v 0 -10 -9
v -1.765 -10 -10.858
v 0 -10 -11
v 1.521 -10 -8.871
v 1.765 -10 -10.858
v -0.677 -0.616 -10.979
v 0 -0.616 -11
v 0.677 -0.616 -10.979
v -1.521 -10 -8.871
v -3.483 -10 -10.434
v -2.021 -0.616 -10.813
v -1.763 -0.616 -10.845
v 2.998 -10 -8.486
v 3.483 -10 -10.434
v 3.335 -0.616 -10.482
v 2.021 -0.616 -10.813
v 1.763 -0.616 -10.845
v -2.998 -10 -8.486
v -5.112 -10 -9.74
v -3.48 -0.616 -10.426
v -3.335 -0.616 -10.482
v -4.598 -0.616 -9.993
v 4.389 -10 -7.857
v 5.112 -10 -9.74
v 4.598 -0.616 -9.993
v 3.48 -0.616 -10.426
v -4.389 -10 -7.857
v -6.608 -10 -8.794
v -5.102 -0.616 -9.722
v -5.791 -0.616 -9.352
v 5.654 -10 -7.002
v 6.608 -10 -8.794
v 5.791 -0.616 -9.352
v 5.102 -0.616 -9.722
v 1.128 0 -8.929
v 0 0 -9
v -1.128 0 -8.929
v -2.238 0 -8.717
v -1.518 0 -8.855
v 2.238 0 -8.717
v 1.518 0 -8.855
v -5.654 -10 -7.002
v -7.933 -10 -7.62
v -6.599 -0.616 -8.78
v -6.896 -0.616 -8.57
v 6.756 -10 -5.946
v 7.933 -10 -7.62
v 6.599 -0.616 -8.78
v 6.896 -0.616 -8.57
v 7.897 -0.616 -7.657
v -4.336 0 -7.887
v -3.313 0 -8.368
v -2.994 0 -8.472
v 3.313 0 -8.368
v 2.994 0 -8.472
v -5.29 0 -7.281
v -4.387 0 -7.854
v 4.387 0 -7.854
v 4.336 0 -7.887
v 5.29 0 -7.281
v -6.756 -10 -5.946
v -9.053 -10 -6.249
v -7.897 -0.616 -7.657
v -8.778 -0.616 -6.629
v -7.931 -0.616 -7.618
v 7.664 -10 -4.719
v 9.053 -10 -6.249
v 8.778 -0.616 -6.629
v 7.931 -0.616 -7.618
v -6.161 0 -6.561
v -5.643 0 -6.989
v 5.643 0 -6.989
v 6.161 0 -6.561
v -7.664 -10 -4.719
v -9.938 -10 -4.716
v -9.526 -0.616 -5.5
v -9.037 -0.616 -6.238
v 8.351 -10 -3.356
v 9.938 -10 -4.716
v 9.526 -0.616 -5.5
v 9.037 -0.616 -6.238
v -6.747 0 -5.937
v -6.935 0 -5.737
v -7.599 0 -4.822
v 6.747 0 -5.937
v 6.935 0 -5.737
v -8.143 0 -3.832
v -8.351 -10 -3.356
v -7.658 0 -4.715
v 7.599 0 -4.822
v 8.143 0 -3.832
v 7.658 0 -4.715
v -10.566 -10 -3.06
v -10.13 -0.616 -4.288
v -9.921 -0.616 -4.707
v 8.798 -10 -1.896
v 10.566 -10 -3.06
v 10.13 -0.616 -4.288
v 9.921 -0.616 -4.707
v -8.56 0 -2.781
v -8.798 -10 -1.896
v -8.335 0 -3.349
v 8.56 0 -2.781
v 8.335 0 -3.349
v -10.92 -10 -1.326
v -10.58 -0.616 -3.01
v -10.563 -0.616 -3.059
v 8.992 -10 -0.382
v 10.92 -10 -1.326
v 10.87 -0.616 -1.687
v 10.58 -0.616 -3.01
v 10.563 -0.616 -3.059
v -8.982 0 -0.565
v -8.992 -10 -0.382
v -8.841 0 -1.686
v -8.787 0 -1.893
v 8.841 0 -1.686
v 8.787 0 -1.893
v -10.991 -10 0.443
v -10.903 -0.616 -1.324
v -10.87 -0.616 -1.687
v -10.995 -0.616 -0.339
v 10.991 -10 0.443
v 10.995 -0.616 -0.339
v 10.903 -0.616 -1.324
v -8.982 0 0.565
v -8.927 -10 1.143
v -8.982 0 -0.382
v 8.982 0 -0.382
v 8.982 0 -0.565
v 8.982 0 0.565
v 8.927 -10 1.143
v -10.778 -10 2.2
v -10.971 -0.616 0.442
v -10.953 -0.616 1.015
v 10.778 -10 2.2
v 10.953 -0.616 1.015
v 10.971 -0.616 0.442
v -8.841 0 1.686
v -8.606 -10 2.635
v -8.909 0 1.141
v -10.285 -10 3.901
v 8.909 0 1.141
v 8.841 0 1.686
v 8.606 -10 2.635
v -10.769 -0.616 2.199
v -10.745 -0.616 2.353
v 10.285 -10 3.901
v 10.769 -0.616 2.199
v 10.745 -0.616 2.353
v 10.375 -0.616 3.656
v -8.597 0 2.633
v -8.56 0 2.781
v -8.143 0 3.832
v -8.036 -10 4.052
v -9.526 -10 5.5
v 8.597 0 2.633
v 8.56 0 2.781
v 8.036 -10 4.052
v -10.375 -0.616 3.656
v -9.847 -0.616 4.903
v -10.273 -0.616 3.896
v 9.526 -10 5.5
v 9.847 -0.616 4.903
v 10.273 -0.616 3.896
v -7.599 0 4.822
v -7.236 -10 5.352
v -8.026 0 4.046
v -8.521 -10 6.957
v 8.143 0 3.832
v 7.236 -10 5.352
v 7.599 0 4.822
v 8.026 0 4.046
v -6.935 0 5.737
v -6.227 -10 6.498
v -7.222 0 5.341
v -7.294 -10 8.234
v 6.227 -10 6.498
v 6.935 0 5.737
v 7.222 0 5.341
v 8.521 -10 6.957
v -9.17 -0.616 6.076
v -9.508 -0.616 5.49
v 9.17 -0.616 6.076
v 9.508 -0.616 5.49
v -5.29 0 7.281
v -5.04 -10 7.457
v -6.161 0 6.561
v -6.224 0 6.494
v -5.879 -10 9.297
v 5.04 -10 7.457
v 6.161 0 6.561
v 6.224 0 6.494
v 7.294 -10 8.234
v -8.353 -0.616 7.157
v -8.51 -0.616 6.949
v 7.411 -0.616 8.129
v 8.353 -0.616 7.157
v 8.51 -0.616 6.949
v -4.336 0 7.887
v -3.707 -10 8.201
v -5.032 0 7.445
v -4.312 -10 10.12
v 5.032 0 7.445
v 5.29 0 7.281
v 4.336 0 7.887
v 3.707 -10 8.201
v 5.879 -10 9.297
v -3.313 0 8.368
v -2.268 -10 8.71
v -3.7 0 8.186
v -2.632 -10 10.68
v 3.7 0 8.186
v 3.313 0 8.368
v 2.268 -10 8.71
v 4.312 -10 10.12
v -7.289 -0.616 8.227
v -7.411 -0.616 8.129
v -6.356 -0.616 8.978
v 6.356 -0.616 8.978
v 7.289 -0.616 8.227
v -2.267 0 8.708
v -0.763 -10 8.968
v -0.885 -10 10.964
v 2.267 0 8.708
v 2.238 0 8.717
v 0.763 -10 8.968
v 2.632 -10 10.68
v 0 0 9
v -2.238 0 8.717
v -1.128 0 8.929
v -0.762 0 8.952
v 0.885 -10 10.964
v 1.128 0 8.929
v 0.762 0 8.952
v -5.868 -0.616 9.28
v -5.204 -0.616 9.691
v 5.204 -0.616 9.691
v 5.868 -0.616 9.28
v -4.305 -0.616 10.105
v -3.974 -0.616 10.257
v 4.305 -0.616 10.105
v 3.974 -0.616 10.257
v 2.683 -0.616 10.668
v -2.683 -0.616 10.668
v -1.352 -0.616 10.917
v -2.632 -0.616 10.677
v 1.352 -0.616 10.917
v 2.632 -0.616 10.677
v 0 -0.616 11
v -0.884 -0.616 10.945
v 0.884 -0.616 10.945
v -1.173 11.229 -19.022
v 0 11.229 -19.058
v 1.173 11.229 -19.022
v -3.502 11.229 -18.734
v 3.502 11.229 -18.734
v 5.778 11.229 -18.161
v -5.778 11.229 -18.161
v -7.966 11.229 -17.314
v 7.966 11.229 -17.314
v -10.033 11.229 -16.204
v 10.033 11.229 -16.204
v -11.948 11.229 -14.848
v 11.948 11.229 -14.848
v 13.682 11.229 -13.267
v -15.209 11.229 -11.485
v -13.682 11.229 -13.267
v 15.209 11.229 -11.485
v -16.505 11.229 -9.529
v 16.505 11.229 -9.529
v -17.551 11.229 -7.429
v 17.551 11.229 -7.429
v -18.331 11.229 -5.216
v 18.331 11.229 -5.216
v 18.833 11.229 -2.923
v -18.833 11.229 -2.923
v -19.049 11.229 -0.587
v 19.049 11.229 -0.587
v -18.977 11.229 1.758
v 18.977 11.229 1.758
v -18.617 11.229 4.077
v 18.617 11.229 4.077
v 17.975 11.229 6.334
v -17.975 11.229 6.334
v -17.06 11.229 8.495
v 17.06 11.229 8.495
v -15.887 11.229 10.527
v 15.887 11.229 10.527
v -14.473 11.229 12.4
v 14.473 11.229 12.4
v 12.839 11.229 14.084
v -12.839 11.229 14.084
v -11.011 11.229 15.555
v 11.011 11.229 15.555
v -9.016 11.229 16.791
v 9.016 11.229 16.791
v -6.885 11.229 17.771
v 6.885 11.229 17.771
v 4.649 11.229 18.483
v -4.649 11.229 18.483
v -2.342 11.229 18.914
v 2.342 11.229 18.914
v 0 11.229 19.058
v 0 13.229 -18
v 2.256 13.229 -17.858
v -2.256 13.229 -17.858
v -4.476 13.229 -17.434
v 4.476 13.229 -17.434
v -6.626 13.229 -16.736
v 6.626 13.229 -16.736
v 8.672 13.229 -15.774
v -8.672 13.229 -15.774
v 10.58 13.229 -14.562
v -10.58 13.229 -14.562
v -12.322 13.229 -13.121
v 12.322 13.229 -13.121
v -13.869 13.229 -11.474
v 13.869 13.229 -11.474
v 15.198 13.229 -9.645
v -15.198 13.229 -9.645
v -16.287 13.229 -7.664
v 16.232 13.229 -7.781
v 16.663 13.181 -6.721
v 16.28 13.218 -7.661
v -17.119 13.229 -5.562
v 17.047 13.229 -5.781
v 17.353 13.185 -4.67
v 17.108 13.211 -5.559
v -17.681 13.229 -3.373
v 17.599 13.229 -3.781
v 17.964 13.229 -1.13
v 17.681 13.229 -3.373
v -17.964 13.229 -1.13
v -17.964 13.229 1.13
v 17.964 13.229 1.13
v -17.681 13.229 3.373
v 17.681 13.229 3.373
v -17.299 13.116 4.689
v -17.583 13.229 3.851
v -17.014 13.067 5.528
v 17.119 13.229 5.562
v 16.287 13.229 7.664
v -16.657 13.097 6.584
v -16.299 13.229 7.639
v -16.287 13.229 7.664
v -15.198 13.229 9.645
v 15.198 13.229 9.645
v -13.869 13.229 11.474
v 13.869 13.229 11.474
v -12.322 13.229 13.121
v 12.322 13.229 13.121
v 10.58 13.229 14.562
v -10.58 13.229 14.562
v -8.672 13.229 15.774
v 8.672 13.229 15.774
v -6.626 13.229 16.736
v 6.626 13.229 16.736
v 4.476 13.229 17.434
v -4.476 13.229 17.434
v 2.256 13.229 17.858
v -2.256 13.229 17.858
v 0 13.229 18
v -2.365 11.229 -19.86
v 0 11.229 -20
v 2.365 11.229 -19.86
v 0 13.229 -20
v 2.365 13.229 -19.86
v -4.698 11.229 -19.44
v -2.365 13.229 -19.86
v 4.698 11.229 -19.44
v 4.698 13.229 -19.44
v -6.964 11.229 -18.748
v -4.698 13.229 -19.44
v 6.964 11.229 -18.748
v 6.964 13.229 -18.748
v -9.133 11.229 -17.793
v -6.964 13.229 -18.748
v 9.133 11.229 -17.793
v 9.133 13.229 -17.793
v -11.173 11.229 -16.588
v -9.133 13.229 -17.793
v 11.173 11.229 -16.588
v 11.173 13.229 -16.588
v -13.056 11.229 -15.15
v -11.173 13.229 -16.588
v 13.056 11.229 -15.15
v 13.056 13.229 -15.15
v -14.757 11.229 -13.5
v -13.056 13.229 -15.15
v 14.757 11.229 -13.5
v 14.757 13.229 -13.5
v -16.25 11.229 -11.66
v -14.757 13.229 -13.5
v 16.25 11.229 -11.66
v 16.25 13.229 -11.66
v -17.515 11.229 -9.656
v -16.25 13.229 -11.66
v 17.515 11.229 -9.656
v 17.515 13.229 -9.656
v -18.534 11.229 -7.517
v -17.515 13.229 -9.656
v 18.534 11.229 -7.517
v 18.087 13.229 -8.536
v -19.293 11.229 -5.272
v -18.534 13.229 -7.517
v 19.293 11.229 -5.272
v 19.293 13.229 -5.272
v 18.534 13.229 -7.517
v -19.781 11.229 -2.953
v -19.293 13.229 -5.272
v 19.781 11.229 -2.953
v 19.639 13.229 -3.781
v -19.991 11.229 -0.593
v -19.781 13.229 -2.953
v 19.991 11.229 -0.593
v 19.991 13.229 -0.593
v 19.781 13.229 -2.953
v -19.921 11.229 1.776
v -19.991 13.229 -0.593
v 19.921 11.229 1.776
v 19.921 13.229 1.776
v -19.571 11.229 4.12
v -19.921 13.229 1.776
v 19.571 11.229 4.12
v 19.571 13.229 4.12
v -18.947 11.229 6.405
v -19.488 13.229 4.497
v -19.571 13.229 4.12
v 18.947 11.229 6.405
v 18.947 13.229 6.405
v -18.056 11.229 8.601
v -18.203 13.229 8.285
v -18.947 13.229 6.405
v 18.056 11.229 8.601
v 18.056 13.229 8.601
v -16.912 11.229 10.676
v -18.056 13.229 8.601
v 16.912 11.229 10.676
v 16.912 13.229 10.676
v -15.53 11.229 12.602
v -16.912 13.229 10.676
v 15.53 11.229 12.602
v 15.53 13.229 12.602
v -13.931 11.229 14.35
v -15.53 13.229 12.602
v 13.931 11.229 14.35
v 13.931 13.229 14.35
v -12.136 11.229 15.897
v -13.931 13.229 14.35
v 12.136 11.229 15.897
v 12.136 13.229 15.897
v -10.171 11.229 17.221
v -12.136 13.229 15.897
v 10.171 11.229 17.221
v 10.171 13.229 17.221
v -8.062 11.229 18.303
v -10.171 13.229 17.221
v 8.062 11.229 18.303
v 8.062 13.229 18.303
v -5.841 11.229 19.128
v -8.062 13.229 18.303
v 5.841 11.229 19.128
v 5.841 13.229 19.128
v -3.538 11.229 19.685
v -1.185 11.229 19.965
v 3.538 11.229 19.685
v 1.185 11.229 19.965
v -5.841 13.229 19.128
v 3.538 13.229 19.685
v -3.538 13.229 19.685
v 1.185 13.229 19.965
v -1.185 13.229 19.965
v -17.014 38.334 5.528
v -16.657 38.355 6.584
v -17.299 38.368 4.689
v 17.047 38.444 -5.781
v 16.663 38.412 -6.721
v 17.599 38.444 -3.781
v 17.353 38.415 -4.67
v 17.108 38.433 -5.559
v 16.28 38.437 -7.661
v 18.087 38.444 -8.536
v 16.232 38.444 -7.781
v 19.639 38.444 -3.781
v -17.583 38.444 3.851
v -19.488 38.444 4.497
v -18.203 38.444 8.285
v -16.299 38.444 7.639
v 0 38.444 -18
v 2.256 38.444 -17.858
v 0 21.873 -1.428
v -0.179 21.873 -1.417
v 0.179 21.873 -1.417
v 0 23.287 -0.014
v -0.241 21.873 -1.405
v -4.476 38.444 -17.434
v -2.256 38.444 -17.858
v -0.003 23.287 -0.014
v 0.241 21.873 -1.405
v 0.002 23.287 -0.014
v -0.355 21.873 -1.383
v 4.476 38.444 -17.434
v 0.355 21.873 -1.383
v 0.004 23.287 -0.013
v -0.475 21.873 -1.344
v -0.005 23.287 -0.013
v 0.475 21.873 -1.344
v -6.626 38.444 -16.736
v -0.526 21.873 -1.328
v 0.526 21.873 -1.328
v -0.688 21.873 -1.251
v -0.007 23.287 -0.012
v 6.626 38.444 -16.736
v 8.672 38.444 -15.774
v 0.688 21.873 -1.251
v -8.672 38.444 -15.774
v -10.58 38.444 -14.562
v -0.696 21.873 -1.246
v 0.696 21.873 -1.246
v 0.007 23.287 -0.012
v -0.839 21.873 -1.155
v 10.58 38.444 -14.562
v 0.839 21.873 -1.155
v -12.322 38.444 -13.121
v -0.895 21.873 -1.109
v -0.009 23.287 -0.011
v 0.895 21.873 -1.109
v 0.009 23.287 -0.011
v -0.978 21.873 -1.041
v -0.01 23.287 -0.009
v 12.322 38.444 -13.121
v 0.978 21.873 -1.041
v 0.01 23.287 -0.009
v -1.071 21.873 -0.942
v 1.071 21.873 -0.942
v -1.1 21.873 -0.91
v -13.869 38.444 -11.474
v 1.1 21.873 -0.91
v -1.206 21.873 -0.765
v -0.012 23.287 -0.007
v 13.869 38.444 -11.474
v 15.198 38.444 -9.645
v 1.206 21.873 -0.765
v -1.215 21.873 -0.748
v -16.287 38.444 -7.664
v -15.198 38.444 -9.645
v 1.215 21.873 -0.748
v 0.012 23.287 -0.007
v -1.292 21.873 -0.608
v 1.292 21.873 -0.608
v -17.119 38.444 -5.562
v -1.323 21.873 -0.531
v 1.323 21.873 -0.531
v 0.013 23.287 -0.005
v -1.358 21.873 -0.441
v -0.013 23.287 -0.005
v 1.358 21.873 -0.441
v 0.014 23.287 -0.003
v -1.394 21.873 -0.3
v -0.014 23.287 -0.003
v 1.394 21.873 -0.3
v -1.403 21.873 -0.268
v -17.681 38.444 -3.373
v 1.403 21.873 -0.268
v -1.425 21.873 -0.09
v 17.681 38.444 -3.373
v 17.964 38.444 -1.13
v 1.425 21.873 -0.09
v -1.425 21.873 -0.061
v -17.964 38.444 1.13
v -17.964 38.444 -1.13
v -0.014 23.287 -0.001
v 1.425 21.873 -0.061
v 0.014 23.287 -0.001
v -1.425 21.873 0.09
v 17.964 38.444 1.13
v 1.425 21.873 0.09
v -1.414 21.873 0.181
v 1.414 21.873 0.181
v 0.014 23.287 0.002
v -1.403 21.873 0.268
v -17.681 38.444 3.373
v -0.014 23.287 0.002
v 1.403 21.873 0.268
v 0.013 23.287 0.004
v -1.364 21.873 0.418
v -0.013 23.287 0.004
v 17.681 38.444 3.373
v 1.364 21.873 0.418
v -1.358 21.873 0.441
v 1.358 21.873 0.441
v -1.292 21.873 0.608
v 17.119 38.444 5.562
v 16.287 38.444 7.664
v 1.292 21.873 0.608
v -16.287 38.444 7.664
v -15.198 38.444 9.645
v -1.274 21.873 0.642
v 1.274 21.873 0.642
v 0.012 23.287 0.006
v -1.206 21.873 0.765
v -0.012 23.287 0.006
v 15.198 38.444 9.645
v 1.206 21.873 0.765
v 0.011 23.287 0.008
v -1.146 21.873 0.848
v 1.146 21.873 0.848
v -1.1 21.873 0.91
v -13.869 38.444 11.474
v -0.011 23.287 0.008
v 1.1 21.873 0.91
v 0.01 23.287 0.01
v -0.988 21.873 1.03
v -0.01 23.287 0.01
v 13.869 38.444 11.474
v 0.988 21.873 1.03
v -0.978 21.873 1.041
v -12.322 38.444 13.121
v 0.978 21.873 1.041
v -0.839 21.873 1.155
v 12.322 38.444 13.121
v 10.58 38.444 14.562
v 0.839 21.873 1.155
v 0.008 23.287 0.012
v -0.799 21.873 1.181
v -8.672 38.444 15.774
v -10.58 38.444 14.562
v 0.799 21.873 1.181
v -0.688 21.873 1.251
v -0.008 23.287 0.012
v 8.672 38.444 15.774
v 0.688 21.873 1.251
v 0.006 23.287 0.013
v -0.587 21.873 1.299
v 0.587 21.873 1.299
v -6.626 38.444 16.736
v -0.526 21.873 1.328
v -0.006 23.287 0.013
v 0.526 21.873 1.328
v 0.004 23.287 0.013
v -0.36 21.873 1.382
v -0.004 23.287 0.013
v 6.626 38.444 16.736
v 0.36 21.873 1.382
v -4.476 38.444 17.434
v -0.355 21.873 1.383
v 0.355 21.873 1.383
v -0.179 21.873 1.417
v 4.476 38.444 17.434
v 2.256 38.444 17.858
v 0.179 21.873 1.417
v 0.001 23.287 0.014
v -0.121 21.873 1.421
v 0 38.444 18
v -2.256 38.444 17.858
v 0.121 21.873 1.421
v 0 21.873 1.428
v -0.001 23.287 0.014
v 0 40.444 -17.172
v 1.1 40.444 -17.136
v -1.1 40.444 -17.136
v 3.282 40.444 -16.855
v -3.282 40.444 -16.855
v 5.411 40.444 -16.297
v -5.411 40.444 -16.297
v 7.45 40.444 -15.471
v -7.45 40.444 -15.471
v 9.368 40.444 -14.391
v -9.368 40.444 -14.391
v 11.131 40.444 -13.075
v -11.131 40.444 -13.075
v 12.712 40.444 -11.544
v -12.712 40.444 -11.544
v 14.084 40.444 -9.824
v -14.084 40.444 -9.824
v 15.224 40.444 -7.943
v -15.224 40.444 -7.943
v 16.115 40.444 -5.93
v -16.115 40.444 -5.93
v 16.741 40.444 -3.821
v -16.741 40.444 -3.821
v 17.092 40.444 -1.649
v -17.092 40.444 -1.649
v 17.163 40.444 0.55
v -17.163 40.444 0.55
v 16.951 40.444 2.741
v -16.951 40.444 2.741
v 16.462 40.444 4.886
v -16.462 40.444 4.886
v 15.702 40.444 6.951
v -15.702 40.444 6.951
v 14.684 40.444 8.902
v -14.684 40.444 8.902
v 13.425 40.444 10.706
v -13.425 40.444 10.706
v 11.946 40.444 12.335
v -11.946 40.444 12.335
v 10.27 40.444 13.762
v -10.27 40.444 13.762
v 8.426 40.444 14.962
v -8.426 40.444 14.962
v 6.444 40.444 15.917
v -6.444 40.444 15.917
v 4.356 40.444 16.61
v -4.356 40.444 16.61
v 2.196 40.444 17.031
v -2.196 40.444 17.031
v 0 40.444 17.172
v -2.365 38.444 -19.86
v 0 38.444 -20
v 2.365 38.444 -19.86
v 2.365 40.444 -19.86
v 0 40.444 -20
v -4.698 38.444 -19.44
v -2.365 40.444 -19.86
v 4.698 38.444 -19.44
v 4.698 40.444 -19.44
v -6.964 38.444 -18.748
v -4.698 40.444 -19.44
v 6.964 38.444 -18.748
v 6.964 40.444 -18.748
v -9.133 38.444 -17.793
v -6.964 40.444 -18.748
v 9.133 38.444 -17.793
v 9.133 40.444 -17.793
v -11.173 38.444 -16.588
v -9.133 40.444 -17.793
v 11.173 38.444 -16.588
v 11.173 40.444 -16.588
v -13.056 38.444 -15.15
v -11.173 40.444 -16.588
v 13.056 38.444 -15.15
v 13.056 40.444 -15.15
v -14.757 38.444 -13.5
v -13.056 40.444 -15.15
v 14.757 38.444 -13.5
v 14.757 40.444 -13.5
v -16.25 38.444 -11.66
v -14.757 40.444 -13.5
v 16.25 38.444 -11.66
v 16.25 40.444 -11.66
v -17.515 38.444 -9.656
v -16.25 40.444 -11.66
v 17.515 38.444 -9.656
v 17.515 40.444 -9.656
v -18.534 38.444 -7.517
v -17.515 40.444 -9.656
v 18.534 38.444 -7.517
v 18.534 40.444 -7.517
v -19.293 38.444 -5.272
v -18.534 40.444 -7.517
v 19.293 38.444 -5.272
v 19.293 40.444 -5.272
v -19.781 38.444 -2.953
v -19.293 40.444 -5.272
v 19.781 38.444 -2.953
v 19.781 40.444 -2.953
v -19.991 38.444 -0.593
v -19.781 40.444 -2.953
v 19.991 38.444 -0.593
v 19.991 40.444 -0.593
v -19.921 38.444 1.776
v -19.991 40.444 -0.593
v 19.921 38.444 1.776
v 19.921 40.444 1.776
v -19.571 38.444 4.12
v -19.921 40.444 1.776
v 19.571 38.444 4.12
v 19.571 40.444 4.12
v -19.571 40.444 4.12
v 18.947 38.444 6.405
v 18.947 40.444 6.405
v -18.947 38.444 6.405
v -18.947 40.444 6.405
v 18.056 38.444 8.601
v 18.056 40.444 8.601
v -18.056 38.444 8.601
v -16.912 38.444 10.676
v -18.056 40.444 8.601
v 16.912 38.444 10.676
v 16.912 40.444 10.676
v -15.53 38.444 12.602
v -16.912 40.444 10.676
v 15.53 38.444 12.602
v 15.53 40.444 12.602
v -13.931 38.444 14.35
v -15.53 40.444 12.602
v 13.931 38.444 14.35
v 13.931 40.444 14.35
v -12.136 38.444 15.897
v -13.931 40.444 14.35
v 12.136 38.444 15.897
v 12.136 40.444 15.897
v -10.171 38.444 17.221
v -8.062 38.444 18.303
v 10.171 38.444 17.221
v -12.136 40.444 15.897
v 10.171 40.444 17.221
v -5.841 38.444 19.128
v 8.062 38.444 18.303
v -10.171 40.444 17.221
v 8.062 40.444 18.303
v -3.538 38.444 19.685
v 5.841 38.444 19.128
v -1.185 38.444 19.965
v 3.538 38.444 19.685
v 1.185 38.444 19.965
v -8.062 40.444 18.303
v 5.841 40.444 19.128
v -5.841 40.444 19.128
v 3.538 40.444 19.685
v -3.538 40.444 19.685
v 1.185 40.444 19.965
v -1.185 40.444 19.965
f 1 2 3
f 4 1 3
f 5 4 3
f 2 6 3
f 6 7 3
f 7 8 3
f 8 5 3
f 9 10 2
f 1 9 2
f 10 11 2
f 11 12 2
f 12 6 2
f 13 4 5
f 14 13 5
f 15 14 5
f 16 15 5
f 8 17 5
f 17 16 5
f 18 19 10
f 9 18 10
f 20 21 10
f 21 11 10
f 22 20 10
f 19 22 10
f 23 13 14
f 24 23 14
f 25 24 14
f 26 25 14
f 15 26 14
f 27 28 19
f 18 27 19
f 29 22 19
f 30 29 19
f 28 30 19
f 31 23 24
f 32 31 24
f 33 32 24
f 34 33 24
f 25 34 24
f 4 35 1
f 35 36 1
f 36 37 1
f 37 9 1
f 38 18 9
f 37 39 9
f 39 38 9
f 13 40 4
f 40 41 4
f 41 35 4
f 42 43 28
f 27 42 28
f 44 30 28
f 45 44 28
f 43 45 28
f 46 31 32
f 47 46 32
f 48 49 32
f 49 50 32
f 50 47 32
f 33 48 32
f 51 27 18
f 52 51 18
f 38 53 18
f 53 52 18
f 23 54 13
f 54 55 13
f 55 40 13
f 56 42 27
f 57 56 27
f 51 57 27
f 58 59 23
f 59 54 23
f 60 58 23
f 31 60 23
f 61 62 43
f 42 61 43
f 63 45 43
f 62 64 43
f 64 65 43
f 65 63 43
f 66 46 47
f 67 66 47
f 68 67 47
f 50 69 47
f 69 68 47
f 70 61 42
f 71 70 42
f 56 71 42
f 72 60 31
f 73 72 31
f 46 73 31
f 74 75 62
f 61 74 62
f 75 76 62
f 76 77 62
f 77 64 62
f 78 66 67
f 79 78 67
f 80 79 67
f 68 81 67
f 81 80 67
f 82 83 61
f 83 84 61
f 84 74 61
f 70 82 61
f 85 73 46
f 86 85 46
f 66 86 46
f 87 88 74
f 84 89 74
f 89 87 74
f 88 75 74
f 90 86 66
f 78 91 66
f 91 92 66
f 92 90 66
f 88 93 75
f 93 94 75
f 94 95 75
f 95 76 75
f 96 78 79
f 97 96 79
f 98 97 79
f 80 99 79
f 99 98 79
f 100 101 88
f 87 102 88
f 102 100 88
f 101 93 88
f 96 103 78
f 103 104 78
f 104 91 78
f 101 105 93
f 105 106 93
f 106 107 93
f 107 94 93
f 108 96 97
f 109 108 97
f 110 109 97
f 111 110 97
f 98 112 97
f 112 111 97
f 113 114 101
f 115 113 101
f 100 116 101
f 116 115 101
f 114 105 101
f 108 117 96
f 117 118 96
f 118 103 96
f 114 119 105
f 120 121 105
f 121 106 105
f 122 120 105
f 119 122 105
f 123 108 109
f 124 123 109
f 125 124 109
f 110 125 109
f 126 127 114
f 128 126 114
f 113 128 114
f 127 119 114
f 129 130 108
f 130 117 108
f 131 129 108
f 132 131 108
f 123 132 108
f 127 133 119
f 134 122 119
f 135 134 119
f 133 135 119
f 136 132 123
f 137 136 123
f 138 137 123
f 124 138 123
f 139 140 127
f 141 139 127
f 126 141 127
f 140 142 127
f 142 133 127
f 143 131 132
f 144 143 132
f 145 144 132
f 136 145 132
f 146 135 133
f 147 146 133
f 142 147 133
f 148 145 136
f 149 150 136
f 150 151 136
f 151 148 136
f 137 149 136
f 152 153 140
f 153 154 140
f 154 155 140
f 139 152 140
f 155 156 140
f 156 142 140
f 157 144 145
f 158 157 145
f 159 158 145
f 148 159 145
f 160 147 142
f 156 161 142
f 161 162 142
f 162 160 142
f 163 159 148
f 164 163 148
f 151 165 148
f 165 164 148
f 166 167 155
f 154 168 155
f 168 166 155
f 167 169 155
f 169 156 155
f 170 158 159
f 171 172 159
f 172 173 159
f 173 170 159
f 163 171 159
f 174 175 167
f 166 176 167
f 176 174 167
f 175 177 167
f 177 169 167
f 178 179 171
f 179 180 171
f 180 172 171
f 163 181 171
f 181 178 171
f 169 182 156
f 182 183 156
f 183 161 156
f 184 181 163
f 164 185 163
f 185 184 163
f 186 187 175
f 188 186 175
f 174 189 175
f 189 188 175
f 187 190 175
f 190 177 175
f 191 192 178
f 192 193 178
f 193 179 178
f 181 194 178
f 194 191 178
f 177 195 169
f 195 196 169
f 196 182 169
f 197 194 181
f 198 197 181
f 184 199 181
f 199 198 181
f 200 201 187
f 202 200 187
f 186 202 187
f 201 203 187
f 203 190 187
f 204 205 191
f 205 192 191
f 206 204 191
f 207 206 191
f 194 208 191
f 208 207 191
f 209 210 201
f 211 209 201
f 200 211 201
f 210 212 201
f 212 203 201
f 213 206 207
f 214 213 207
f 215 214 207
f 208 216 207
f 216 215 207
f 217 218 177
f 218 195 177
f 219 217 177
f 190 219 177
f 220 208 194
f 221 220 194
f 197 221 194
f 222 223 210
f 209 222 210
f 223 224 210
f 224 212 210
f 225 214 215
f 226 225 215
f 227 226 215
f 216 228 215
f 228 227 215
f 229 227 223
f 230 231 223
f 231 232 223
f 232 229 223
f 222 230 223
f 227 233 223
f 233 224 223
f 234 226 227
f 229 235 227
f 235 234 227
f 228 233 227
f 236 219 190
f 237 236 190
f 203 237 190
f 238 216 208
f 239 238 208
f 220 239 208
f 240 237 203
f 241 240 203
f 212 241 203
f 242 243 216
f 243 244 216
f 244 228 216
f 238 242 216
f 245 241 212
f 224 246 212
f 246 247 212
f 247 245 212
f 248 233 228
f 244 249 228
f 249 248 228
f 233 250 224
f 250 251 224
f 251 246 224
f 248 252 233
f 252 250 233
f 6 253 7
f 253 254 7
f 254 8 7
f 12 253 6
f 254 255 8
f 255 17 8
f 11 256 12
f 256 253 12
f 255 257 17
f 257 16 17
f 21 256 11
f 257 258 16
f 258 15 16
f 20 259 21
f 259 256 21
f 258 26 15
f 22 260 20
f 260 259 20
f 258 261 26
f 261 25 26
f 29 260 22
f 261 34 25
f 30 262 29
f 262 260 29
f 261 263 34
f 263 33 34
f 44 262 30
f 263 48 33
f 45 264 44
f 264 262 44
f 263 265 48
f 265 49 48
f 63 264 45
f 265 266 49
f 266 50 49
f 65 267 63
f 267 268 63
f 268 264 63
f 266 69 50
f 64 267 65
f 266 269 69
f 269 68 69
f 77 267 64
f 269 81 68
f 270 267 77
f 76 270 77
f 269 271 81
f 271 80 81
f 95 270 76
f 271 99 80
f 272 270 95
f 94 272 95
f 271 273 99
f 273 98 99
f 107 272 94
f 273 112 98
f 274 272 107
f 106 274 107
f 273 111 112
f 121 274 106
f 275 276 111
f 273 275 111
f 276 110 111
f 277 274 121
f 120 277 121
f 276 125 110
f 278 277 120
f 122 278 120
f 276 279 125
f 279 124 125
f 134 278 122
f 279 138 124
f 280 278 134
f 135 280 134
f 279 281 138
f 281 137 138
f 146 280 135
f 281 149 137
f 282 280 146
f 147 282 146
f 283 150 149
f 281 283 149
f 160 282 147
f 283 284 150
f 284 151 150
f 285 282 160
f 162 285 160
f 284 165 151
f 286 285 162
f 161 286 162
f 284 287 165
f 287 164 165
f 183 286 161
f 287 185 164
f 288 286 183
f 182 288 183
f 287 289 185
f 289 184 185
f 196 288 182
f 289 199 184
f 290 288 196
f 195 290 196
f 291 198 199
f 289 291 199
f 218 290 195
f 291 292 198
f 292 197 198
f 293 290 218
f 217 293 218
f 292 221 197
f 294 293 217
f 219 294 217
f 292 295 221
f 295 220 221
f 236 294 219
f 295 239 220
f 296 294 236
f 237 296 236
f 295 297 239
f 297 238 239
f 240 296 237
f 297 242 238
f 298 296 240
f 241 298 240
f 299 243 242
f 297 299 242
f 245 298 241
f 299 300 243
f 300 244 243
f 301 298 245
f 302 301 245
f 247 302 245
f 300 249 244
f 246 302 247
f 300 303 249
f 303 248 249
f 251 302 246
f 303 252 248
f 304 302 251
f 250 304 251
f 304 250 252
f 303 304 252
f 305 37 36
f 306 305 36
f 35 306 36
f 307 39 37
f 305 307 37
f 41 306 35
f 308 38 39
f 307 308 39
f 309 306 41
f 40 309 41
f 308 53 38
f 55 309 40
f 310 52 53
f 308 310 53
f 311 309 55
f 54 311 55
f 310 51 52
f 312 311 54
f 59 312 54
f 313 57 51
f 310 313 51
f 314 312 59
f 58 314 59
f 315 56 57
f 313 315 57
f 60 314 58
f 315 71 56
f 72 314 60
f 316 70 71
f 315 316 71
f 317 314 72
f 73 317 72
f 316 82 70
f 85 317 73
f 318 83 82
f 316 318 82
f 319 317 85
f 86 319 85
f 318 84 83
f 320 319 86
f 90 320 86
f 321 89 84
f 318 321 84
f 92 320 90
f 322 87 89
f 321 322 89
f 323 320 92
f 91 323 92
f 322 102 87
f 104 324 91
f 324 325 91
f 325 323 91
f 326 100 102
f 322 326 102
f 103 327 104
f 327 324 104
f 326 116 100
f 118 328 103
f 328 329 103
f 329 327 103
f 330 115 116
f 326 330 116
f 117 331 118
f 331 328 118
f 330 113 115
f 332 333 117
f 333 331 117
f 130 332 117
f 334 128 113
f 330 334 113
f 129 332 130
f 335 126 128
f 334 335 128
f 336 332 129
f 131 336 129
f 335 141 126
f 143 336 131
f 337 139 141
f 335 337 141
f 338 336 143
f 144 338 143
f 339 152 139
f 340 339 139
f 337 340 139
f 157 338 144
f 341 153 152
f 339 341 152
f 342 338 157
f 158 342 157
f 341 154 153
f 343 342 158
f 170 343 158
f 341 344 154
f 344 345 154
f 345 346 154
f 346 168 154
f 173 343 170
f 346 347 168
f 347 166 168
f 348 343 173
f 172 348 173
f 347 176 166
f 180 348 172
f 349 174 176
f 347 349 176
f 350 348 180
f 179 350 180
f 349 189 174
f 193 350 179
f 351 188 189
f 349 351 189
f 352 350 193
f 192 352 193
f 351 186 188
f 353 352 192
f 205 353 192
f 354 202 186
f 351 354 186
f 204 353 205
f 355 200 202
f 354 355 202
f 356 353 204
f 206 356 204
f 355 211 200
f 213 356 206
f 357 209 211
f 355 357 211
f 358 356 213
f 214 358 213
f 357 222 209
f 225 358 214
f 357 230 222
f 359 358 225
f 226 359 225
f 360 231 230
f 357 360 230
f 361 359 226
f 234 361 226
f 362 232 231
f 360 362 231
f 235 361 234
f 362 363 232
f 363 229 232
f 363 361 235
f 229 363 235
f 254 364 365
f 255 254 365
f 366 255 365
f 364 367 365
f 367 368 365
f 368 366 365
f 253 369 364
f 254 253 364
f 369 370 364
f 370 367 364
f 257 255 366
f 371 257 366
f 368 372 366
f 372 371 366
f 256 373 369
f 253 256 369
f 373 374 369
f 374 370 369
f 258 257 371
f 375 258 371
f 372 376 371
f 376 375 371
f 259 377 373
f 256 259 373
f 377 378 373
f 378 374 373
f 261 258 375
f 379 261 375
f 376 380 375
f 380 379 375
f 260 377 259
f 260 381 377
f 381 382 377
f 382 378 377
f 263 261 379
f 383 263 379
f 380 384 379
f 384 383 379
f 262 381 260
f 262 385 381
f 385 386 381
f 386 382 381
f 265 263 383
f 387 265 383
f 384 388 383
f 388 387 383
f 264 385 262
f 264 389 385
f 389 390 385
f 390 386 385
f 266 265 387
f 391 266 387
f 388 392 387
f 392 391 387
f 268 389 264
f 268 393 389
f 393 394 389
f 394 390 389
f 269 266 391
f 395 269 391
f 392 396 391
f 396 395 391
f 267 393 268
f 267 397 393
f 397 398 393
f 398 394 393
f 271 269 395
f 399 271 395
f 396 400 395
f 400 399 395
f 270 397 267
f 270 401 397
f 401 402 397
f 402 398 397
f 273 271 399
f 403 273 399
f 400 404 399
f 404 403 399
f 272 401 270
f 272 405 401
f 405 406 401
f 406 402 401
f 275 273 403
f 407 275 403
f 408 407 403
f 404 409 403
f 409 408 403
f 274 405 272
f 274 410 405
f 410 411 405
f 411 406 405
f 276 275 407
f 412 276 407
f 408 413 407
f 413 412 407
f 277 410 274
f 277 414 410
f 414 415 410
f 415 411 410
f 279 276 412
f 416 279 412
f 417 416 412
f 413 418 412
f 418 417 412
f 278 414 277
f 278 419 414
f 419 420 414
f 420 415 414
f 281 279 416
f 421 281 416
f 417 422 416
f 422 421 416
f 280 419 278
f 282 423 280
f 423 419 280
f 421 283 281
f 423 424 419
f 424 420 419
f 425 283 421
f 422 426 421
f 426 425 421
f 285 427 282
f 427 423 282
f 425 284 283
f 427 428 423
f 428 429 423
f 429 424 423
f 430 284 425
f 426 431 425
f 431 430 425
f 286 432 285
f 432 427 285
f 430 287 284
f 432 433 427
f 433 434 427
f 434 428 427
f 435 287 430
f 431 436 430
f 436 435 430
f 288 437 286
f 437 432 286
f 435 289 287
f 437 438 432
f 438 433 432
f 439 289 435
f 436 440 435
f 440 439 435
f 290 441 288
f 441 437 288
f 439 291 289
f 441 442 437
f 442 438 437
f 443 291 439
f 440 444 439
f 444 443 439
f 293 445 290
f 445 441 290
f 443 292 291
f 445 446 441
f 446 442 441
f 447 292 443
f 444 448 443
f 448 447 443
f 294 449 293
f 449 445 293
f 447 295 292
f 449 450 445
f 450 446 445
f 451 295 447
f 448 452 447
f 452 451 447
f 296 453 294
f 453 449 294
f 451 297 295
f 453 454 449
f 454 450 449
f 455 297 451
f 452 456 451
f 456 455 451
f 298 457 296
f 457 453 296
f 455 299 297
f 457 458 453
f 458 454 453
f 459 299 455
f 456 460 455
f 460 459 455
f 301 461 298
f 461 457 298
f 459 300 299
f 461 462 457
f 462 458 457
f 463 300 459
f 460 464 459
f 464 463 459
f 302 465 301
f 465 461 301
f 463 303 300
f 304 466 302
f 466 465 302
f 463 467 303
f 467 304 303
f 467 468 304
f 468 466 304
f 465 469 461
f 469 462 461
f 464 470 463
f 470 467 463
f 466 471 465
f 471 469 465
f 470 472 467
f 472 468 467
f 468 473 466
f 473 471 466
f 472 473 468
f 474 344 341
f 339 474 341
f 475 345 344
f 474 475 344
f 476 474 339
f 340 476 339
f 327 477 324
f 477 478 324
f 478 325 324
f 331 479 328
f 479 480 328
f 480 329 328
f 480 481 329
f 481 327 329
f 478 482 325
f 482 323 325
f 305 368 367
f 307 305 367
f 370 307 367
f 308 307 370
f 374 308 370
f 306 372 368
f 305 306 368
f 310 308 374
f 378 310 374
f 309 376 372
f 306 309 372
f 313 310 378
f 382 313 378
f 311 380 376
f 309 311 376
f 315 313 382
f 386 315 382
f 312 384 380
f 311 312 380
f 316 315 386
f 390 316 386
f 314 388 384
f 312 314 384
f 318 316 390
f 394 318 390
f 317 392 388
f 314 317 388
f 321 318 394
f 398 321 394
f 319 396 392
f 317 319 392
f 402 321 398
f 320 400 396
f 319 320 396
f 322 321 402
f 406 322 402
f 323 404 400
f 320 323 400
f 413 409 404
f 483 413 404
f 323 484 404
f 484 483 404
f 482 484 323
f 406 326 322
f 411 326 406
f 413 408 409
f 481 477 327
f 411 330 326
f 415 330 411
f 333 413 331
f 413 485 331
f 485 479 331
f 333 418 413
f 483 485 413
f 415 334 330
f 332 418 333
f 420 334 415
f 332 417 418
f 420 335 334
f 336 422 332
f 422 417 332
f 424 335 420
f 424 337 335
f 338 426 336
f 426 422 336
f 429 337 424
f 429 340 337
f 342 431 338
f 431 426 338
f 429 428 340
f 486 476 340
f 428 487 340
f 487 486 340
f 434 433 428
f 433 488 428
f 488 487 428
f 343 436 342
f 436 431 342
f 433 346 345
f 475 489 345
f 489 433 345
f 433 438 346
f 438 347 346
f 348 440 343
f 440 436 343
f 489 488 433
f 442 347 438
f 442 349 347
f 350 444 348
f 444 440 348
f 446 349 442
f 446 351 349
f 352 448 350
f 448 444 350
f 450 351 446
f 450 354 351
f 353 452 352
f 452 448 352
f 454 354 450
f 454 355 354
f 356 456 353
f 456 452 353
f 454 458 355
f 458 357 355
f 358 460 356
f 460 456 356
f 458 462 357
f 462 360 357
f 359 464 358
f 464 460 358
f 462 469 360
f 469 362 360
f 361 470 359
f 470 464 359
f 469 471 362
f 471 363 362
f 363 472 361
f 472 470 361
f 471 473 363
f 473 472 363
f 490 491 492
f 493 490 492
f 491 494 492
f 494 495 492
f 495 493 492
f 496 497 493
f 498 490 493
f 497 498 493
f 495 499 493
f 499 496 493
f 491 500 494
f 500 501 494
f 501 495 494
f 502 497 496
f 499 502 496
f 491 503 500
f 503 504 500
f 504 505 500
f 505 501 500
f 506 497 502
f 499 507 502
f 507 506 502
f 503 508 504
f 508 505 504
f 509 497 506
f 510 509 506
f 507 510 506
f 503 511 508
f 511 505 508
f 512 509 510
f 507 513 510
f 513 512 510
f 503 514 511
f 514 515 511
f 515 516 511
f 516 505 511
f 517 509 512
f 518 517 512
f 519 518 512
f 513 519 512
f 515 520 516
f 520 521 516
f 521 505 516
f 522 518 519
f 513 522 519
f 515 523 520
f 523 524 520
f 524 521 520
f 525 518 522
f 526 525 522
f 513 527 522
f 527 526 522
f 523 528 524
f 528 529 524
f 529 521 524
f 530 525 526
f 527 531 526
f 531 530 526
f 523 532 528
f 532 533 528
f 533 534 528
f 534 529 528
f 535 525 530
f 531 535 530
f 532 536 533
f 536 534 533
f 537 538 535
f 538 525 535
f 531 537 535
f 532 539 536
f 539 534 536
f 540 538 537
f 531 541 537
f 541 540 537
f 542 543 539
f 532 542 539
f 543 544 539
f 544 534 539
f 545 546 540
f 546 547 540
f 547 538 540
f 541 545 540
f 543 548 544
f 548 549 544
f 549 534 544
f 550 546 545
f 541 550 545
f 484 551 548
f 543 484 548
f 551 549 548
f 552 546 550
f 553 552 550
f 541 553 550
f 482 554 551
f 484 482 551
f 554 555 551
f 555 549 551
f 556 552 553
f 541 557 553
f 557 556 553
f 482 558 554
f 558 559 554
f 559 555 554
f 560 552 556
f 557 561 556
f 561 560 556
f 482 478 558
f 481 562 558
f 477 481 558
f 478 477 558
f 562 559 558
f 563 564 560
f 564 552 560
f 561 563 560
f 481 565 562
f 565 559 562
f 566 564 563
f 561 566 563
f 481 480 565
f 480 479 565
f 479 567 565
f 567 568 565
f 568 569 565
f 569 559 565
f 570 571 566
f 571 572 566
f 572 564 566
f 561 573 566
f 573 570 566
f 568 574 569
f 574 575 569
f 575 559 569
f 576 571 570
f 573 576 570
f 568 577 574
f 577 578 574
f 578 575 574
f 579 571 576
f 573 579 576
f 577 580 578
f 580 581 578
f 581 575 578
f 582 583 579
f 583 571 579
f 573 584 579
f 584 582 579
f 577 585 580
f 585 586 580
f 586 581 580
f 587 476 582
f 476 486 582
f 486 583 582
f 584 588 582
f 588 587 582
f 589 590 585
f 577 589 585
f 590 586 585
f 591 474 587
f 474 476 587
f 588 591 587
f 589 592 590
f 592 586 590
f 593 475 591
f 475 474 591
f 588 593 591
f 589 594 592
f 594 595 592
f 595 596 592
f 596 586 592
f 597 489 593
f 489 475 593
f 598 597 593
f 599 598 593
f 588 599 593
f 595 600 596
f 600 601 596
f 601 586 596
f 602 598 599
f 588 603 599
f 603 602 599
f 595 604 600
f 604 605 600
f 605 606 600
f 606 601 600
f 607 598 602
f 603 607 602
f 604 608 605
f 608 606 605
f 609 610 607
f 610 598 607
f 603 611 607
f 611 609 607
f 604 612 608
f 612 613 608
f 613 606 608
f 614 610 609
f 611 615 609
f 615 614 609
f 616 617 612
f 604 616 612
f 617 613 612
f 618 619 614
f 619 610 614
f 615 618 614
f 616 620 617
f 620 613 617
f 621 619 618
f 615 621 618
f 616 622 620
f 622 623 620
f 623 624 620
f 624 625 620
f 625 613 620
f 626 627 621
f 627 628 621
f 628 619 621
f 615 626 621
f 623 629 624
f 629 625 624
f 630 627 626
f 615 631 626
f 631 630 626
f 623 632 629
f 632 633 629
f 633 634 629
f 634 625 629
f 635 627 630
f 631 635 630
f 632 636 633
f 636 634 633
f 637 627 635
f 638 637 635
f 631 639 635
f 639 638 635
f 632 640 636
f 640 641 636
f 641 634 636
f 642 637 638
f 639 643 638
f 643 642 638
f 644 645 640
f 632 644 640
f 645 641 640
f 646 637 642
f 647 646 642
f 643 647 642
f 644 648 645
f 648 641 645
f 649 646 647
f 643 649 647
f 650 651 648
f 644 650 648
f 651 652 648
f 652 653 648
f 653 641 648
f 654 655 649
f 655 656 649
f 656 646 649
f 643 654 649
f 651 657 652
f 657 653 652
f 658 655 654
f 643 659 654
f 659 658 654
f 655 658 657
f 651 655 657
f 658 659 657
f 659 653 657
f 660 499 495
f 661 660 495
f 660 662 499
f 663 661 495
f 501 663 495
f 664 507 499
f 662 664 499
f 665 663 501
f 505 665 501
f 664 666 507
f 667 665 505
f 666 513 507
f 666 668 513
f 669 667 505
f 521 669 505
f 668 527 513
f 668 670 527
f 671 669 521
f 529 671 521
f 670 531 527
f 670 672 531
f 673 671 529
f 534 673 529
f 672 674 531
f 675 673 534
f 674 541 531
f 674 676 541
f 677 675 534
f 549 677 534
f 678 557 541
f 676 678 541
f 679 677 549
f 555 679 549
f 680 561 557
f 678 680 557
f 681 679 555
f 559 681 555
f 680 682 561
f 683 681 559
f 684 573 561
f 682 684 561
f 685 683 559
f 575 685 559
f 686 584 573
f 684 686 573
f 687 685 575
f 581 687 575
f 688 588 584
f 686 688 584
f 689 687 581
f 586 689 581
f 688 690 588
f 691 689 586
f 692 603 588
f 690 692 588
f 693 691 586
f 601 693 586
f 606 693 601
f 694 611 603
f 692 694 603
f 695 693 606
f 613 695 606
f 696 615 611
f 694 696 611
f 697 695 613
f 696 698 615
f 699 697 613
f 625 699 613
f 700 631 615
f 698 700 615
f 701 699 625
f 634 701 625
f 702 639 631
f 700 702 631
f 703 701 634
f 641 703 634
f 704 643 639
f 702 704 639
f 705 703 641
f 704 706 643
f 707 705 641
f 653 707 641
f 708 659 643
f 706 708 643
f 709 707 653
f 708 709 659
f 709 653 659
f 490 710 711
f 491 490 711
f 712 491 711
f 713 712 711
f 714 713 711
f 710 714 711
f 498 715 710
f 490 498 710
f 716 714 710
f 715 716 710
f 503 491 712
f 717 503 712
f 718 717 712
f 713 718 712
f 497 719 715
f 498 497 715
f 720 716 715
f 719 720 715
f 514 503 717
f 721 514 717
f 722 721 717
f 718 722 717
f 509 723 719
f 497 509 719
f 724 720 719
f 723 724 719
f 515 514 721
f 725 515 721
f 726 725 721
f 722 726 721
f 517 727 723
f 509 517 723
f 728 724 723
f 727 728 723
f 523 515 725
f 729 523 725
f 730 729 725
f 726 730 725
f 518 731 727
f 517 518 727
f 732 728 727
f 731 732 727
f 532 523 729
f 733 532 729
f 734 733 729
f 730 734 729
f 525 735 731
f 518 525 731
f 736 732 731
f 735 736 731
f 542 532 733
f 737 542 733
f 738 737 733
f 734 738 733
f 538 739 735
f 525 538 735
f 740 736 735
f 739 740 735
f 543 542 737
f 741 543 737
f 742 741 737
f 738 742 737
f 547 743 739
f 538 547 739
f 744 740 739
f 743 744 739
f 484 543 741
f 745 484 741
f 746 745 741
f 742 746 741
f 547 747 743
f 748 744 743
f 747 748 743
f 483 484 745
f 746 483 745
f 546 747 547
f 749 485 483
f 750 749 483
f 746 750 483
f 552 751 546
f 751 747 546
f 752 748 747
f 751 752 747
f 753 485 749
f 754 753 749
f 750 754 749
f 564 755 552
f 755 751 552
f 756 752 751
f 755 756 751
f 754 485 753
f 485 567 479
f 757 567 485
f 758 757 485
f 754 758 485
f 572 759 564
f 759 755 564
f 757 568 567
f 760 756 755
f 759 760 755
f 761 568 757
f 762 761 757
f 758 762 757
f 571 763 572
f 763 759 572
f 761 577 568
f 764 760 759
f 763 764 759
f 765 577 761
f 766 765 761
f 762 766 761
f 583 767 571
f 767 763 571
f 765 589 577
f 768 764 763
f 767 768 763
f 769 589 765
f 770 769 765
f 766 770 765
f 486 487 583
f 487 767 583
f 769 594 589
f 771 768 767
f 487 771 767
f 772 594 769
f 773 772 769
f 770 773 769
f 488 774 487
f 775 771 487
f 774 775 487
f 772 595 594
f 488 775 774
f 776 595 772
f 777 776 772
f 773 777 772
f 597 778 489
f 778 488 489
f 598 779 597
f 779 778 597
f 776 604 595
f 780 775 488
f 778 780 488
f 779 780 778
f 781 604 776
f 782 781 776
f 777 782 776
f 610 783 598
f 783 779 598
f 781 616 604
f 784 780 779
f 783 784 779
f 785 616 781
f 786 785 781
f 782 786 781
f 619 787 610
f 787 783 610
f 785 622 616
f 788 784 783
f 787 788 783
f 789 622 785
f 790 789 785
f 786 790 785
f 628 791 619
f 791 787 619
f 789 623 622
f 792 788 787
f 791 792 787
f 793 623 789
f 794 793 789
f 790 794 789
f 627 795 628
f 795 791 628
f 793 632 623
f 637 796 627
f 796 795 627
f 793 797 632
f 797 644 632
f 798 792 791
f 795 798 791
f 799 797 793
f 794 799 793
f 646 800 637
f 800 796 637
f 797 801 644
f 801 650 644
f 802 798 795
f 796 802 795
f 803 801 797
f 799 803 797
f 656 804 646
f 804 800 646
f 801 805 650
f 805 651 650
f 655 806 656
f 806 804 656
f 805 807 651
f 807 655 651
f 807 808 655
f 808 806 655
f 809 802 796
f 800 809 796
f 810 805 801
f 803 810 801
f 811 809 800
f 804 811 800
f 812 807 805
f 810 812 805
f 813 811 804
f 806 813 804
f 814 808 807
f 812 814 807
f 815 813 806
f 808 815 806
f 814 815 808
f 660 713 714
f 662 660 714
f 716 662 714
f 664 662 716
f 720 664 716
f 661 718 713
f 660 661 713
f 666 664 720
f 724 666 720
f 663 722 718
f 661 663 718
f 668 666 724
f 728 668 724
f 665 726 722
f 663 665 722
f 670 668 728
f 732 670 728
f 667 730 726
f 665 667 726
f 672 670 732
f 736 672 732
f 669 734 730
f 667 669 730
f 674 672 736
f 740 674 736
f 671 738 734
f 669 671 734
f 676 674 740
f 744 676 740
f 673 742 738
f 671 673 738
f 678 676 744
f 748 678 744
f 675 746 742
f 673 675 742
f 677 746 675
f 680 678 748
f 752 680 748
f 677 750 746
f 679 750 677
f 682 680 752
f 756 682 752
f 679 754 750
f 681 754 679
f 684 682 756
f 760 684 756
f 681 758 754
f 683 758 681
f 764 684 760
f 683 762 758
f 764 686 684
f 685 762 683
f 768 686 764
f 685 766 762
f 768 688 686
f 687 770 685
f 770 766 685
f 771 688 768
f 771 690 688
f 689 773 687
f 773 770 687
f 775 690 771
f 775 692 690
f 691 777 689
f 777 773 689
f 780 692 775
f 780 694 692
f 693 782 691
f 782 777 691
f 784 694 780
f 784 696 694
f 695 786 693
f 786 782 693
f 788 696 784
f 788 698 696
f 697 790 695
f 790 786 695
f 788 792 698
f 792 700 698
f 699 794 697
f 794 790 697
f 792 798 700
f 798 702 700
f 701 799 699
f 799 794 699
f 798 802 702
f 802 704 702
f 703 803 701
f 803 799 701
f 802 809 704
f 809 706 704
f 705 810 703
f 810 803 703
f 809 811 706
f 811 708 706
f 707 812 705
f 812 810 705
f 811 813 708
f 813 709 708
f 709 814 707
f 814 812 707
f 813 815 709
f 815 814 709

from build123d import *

# Parameters (mm, degrees)
BOSS_EXTRUDE1_DEPTH = 26


with BuildPart() as part:
    # Sketch1 → Revolve-Thin3 (revolve)
    with BuildSketch(Plane.XY, mode=Mode.PRIVATE) as revolve_thin3_sk:
        Polygon((-20, 13.228756555), (-18, 13.228756555), (-9, 0), (-9, -10), (-11, -10), (-11, -0.615831877), (-19.058300524, 11.228756555), (-20, 11.228756555), align=None)
    revolve(revolve_thin3_sk.sketch.rotate(Axis((0, 0, 0), (0, 1, 0)), 270), axis=Axis((0, 0, 0), (0, 1, 0)))



with BuildPart() as body_2:
    # Sketch5 → Revolve-Thin5 (revolve)
    with BuildSketch(Plane.XY, mode=Mode.PRIVATE) as revolve_thin5_sk:
        Polygon((1.428130018, 21.872546541), (18, 38.444416522), (20, 38.444416522), (20, 40.444416522), (17.171572875, 40.444416522), (0.013916456, 23.286760103), align=None)
    revolve(revolve_thin5_sk.sketch.rotate(Axis((0, 0, 0), (0, 1, 0)), 270), axis=Axis((0, 0, 0), (0, 1, 0)))


with BuildPart() as part_1:
    add(part.part)

    add(body_2.part)  # Boss-Extrude1 merges body 2
    # Sketch7 → Boss-Extrude1 (add)
    with BuildSketch(Plane.XZ.offset(-38.444416522)):
        Polygon((-18.203416664, 8.284661837), (-16.298741538, 7.638784214), (-17.583300095, 3.850656798), (-19.487975221, 4.496534421), align=None)
        Polygon((17.046573369, -5.780513503), (16.231562144, -7.780513503), (18.0866902, -8.536488599), (19.639442906, -3.780513503), (17.598514643, -3.780513503), align=None)
    extrude(amount=BOSS_EXTRUDE1_DEPTH)


solid = part_1.part
